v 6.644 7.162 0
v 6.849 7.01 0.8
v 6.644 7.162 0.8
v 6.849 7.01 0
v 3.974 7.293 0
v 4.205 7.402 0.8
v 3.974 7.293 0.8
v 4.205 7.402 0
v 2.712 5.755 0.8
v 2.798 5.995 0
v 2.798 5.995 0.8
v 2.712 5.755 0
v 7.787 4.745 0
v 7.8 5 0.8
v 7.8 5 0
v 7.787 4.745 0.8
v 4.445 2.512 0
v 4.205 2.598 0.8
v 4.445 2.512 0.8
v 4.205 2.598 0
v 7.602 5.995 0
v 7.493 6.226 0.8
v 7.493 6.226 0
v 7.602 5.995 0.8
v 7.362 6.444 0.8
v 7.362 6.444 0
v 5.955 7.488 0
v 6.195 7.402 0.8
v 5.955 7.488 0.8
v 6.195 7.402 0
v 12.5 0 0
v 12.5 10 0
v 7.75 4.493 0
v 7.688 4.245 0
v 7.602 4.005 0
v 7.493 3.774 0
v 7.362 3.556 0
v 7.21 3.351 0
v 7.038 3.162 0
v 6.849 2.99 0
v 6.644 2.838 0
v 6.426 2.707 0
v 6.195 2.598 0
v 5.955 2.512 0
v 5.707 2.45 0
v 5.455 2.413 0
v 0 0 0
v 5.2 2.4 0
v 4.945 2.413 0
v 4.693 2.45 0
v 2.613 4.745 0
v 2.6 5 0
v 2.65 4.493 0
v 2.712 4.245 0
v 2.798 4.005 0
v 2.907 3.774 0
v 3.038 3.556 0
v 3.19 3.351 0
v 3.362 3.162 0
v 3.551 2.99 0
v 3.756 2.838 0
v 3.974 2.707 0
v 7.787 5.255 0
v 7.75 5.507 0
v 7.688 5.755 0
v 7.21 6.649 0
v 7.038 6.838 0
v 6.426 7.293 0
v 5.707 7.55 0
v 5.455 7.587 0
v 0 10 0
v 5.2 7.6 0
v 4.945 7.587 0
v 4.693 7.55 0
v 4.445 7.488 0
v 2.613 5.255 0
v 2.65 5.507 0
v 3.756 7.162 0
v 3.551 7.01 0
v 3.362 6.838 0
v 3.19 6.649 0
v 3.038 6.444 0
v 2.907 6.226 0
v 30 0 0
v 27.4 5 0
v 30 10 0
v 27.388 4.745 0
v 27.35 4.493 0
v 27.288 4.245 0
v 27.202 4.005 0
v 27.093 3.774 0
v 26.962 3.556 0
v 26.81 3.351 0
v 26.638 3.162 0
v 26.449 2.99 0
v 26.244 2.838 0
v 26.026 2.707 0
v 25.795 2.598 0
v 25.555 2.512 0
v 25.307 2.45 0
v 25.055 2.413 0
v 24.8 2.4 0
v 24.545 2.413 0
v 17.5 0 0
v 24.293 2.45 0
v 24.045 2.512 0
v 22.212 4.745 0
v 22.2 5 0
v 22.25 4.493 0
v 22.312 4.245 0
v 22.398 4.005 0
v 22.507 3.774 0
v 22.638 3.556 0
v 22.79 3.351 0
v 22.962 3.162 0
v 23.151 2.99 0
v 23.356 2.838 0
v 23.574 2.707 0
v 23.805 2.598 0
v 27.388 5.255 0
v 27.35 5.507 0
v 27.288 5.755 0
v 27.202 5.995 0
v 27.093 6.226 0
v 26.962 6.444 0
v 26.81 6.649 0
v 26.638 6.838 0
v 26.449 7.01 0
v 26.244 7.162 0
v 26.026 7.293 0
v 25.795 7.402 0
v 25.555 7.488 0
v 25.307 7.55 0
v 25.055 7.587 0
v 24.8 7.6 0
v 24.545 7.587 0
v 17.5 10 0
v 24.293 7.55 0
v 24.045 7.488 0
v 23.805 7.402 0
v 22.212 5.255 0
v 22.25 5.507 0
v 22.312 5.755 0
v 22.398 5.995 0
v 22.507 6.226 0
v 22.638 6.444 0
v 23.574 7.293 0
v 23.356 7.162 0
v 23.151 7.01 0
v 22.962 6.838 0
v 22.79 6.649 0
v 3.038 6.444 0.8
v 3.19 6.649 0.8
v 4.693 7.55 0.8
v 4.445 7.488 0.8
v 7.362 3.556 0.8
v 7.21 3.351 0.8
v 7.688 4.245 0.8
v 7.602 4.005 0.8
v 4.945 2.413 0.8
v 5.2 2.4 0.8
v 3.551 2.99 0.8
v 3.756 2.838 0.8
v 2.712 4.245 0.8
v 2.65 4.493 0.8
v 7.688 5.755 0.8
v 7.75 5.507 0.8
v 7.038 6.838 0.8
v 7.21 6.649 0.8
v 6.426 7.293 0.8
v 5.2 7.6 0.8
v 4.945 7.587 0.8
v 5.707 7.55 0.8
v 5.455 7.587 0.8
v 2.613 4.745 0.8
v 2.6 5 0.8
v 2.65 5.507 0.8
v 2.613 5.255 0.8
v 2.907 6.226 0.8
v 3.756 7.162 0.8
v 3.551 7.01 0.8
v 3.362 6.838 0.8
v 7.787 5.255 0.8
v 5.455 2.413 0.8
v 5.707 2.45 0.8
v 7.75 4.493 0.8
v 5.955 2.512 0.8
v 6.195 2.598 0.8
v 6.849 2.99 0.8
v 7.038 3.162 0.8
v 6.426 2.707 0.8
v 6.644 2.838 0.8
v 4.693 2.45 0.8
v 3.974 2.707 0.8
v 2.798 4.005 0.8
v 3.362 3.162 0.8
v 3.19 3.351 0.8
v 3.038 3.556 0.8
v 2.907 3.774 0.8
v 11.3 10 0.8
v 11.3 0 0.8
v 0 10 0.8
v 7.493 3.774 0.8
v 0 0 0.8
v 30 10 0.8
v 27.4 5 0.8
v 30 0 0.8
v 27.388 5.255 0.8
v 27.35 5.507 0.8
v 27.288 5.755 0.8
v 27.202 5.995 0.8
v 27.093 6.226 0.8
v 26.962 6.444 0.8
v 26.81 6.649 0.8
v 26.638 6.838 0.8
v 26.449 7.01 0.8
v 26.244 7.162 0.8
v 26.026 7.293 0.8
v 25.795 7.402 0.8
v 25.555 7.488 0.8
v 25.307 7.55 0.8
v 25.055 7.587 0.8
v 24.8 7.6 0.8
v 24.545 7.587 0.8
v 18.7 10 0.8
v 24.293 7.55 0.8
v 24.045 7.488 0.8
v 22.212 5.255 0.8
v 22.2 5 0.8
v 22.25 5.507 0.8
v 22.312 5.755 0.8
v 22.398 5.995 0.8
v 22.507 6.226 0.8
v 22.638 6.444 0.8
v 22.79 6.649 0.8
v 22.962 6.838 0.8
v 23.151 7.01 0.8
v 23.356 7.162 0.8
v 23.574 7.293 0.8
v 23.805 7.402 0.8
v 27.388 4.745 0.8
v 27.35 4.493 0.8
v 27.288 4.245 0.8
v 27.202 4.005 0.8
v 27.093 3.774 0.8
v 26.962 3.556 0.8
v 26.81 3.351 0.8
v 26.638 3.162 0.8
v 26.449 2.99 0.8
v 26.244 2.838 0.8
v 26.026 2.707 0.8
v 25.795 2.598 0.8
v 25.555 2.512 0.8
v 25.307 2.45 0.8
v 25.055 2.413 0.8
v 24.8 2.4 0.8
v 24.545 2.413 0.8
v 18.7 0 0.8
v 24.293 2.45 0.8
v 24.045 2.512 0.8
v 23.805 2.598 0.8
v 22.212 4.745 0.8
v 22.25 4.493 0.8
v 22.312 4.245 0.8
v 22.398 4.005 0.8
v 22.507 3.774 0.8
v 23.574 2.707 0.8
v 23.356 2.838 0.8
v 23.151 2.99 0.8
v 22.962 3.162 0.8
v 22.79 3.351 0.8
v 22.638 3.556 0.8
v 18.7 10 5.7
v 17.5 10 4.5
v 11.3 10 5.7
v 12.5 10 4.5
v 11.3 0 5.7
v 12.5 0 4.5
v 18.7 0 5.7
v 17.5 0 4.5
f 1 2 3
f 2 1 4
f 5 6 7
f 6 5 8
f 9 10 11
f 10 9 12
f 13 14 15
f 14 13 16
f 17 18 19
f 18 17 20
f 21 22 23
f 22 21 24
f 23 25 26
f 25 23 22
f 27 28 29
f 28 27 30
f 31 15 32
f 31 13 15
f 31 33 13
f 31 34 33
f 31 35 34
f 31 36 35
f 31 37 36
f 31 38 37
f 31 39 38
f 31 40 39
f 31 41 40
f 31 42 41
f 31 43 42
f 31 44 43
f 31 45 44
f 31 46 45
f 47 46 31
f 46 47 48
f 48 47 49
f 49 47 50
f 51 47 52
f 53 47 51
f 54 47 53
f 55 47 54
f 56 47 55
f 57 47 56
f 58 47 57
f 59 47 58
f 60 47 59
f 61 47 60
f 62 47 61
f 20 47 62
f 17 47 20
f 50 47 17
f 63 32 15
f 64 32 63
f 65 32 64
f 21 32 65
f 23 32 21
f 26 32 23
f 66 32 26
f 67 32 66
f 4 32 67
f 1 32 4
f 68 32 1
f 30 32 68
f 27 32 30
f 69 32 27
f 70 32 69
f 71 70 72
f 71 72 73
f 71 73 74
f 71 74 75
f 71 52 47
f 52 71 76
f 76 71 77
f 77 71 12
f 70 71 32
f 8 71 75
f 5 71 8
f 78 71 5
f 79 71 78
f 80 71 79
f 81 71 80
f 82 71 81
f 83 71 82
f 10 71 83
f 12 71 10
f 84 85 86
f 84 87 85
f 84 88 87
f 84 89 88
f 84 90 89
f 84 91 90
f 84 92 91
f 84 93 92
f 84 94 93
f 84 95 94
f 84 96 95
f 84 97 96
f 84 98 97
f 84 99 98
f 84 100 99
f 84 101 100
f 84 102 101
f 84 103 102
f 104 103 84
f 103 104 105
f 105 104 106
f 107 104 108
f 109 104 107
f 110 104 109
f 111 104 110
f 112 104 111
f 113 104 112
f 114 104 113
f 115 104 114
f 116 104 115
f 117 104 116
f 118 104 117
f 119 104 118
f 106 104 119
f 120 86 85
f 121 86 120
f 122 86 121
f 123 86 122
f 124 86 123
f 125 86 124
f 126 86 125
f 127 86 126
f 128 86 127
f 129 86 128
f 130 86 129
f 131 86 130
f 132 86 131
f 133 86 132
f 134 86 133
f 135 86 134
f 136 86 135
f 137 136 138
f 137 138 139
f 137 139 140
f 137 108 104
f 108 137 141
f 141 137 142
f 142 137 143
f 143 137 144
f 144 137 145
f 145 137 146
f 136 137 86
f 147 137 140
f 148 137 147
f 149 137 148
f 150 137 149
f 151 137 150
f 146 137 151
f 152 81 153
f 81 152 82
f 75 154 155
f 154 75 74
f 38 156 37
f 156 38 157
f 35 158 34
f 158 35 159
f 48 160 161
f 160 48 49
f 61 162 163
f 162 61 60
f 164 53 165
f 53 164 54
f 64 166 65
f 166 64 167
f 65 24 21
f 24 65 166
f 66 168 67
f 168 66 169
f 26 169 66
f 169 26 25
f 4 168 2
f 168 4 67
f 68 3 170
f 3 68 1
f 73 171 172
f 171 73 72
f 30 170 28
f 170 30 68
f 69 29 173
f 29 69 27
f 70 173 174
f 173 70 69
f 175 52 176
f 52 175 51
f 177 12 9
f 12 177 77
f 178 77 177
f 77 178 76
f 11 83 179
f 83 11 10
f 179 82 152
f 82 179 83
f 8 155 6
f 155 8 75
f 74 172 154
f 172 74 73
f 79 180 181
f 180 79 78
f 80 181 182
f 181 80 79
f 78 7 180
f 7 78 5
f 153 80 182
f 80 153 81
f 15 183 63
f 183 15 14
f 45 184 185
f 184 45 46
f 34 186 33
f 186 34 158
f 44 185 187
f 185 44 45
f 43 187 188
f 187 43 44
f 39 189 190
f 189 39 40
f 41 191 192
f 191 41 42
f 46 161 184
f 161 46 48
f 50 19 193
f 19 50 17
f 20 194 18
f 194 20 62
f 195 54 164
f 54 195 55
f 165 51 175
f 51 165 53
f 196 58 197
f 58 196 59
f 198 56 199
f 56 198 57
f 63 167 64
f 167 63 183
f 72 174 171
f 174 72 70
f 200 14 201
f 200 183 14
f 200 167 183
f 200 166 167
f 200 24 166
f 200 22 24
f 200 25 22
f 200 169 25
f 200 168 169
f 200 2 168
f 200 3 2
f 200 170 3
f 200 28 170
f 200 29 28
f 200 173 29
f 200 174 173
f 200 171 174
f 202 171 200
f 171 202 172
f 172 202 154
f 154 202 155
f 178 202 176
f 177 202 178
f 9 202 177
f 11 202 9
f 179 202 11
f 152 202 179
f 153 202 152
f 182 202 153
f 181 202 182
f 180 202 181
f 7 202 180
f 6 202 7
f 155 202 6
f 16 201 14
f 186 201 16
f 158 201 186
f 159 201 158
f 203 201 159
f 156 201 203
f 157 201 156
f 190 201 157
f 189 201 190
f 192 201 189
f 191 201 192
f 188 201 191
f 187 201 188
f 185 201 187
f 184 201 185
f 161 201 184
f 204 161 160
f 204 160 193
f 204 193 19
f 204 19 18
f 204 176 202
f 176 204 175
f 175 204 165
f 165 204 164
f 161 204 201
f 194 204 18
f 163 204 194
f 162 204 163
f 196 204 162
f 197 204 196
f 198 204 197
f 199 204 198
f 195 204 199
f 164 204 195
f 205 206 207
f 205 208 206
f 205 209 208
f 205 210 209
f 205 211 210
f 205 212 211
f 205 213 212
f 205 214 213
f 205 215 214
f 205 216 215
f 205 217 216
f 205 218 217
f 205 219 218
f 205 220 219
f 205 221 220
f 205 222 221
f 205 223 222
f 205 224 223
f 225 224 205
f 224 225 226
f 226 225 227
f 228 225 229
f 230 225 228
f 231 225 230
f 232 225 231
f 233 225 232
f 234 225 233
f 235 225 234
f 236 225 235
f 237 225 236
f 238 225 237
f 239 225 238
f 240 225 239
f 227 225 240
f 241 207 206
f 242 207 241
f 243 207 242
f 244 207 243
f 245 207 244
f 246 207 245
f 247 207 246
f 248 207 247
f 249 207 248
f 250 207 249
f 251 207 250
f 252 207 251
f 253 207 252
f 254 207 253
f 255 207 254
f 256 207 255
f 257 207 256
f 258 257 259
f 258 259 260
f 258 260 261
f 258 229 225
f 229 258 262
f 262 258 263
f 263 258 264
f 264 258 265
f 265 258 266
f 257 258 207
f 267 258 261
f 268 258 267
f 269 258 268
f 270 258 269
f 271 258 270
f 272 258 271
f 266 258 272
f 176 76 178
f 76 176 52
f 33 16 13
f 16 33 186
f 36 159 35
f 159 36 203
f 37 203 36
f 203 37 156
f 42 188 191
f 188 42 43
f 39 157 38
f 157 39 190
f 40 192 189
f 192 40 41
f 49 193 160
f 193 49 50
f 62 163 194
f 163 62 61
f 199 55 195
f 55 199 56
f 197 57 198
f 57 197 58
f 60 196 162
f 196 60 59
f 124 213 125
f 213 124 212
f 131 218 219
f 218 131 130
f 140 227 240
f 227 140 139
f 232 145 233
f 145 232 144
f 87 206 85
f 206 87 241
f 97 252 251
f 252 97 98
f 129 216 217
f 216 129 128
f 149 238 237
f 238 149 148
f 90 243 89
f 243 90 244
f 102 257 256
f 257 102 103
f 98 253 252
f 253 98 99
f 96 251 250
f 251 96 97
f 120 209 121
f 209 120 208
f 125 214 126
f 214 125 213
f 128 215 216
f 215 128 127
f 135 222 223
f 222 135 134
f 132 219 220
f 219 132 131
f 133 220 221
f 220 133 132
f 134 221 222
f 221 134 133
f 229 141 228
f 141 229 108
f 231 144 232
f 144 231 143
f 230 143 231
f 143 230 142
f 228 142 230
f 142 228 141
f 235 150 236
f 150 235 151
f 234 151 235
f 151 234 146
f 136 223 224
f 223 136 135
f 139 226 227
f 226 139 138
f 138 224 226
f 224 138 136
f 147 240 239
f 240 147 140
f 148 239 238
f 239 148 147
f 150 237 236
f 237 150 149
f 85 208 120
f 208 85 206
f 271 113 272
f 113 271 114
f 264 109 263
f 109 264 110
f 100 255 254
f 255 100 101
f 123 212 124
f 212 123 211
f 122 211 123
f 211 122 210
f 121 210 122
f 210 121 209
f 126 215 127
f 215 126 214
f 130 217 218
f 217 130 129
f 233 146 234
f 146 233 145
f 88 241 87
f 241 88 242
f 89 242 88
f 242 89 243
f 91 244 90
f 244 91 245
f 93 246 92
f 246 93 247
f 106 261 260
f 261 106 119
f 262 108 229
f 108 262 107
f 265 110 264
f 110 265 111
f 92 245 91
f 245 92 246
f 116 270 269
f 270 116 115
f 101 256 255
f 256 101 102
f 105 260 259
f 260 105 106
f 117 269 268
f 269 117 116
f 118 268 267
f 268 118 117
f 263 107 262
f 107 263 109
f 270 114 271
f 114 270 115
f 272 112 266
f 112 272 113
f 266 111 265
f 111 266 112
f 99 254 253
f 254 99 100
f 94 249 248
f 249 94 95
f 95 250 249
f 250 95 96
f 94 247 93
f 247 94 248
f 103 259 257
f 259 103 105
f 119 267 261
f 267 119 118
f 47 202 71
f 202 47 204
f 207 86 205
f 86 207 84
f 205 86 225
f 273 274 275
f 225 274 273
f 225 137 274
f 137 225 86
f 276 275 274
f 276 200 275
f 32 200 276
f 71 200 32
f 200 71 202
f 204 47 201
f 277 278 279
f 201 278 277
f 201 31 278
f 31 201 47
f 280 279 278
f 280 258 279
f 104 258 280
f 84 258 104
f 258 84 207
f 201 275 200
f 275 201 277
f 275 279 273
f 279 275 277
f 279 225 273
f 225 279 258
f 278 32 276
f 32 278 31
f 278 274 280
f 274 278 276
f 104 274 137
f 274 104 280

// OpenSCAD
$fn=64;

// holes
hole_size = 5;
hole_tolerance = 0.2;

// holder size
holder_height = 4.5;
holder_lenght = 5;
holder_wall = 1.2;

//sizes
base_lenght = 30;
base_width = hole_size * 2.0;
base_height = 0.8;

module make_holes(h, shift_x, size) {
    union() {
        translate([size, size, 0]) cylinder(h, size, size, false);
        translate([size + shift_x, size, 0]) cylinder(h, size, size, false);
    }
}

module make_cliper(l, w, h, hole_s, holder_l, holder_h, holder_t) {
    hole_r = hole_s / 2.0;
    difference() {
        union() {
            difference() {
                cube([l, w, h]);
                translate([hole_r, w / 2.0 - hole_r, 0]) make_holes(h, l - (hole_s * 2.0), hole_r);
            }
            translate([l / 2.0 - (holder_l + holder_t * 2.0) / 2.0, 0, 0]) cube([holder_l + holder_t * 2.0, w, holder_h + holder_t]);
        }
        translate([l / 2.0 - holder_l / 2.0, 0, 0]) cube([holder_l, w, holder_h]);
    }
}

make_cliper(base_lenght, base_width, base_height, hole_size + hole_tolerance, holder_lenght, holder_height, holder_wall);
